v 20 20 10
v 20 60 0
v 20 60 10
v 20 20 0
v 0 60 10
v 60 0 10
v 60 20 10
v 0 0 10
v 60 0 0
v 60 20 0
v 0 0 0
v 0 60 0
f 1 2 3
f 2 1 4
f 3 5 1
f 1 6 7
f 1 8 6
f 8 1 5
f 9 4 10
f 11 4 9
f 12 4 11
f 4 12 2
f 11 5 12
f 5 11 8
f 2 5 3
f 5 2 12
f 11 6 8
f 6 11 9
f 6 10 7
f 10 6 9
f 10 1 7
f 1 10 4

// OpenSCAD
$fn=256;union() {
	cube(size = [20, 60, 10]);
	cube(size = [60, 20, 10]);
}
